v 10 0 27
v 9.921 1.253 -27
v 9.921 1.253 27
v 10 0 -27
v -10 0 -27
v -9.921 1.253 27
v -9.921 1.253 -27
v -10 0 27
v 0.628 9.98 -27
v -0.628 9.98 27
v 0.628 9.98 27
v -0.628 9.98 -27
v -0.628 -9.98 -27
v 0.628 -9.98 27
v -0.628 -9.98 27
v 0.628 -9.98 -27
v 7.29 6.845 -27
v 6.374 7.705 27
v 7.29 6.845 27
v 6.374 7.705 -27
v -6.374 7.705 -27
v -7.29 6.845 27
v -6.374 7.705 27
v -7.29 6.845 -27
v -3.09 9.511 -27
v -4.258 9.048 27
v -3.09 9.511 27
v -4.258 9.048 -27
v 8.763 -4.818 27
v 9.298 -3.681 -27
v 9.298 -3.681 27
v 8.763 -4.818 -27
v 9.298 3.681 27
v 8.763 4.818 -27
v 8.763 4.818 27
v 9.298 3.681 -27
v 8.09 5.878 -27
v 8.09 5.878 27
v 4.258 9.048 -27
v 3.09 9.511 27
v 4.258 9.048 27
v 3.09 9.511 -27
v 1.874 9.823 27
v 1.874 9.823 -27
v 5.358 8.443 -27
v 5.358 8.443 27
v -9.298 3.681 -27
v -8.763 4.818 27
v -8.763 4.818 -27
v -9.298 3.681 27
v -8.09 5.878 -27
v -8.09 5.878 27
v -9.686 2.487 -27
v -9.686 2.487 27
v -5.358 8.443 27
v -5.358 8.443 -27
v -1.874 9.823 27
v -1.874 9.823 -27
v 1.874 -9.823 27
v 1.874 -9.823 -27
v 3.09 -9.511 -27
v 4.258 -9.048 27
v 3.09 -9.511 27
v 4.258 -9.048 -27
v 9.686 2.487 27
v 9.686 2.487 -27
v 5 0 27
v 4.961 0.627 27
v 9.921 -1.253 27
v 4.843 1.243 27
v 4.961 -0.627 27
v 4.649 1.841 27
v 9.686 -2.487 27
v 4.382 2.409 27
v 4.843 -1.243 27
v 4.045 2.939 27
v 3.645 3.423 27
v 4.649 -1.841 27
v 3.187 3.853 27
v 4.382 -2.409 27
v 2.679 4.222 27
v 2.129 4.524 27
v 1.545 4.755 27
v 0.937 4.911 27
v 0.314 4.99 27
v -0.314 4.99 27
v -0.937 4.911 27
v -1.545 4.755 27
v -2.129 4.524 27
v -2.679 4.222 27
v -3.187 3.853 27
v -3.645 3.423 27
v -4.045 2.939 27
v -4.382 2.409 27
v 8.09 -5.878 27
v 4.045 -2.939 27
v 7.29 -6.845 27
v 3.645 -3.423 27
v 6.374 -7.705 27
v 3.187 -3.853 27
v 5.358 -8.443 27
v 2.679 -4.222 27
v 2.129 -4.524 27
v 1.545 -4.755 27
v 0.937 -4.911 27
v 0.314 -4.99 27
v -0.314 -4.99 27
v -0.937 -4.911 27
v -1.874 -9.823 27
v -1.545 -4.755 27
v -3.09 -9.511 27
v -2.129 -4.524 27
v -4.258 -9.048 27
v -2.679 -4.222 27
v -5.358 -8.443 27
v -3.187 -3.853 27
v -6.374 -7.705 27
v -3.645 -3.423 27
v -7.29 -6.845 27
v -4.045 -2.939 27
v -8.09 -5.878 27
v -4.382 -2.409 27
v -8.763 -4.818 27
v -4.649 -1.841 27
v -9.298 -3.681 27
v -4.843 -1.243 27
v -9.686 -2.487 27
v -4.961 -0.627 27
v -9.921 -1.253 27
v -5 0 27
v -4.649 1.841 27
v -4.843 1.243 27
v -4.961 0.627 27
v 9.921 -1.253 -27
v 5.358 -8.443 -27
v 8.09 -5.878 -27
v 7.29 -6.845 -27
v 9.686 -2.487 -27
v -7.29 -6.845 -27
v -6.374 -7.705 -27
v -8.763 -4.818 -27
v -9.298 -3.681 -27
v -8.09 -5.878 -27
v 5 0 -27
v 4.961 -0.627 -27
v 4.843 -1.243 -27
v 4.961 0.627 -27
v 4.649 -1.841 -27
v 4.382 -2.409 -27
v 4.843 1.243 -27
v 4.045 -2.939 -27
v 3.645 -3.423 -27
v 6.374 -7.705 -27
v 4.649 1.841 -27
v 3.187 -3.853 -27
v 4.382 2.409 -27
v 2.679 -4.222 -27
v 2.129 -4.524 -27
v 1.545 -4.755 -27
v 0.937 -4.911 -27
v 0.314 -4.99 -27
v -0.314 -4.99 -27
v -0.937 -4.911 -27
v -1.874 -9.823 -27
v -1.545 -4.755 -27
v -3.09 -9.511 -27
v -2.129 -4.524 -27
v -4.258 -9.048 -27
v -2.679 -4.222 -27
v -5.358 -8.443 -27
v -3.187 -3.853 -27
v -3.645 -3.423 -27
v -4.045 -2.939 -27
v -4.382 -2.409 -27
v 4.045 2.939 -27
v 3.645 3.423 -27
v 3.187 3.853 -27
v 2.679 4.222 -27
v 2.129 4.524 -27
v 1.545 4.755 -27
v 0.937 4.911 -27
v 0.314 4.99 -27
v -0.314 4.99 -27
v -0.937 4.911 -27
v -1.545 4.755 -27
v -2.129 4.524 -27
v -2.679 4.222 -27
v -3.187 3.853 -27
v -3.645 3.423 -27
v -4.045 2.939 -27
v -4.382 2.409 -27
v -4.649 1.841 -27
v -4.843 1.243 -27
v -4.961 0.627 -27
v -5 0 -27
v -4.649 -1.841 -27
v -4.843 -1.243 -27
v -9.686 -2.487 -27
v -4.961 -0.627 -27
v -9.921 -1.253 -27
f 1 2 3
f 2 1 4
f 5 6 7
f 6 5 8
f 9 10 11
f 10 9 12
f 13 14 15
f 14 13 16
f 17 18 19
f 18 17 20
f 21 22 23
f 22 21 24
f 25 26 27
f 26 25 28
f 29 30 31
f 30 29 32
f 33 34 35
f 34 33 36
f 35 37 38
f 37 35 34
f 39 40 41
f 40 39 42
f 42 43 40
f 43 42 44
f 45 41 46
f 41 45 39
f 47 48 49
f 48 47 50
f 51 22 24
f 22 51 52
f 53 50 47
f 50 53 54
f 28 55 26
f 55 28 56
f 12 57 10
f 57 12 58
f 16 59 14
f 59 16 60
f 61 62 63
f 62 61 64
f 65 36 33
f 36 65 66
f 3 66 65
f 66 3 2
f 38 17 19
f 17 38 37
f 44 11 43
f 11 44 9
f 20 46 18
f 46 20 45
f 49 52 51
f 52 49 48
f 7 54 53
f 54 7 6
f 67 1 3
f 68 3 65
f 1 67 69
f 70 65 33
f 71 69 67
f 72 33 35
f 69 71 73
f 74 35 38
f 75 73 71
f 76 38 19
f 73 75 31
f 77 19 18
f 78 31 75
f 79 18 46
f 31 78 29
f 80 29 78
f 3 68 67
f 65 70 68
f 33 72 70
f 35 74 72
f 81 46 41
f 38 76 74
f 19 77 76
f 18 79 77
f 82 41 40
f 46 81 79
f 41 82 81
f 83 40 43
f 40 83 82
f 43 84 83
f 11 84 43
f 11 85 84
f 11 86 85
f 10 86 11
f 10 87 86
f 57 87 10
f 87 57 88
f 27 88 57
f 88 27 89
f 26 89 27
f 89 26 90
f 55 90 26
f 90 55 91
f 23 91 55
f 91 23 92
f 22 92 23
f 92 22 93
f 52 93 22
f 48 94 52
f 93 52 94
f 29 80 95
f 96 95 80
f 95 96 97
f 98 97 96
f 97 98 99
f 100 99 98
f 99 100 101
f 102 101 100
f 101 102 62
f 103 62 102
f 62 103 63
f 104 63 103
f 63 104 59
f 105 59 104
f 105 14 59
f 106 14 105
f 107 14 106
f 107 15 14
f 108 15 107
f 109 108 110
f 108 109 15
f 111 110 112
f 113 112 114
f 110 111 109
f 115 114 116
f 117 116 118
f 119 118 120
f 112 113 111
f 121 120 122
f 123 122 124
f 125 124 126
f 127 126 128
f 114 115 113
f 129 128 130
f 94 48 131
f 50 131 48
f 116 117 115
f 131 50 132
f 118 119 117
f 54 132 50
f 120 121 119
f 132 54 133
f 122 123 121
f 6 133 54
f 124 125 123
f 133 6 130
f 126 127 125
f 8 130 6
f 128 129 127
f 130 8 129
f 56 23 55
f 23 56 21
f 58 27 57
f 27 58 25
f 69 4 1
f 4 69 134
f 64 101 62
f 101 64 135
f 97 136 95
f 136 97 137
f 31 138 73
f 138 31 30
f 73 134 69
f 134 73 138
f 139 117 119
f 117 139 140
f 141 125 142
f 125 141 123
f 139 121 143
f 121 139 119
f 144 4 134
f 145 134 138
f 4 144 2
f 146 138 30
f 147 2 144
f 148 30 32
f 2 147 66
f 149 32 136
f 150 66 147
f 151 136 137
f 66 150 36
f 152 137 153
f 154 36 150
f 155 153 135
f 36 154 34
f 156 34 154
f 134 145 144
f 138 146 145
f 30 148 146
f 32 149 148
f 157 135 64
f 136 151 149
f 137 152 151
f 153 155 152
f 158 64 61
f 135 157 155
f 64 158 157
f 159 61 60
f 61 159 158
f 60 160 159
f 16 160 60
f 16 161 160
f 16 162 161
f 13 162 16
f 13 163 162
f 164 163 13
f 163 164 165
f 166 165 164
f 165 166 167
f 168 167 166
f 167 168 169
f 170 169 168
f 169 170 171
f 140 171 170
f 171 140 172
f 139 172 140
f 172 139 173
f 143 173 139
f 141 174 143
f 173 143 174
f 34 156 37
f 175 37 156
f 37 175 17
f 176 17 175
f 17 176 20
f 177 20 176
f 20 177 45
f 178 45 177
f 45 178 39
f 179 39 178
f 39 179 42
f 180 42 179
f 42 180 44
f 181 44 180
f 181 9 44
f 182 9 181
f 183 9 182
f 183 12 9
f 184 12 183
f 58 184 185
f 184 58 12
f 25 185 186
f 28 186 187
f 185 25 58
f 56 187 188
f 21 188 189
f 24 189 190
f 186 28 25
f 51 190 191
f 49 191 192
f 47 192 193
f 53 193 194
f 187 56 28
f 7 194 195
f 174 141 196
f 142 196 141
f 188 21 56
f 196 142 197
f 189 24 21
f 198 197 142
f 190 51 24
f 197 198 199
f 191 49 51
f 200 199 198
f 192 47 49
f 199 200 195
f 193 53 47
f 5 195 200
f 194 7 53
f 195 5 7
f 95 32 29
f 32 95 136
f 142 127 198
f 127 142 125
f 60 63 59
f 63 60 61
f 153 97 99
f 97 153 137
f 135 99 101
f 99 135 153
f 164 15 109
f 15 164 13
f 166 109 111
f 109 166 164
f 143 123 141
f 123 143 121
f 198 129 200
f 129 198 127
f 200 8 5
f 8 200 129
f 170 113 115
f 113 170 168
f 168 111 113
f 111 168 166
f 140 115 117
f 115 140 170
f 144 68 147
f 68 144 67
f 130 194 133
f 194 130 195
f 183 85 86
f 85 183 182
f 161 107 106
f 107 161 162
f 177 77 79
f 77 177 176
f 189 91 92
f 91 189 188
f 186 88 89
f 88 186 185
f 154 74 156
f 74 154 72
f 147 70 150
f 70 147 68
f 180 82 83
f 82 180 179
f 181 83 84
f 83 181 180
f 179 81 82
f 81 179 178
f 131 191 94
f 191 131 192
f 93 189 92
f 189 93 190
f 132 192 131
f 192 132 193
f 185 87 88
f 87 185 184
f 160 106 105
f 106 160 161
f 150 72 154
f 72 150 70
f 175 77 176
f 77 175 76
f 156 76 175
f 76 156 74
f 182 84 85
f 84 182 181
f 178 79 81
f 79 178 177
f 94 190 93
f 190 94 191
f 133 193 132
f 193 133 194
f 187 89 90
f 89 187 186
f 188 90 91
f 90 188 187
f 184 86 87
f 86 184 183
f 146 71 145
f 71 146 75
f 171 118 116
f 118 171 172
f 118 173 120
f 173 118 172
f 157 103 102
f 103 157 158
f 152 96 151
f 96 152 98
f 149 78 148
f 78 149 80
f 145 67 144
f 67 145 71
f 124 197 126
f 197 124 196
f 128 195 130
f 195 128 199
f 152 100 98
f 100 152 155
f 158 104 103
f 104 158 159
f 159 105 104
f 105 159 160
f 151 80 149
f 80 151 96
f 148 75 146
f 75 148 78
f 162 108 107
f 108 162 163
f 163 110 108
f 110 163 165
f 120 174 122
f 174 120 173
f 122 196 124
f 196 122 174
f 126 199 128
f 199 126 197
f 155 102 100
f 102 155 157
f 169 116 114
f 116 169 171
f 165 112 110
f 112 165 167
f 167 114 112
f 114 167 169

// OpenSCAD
$fn = 50;


difference() {
	union() {
		translate(v = [0, 0, -27.0000000000]) {
			cylinder(h = 54, r = 10.0000000000);
		}
	}
	union() {
		translate(v = [0, 0, -100.0000000000]) {
			cylinder(h = 200, r = 5.0000000000);
		}
	}
}
